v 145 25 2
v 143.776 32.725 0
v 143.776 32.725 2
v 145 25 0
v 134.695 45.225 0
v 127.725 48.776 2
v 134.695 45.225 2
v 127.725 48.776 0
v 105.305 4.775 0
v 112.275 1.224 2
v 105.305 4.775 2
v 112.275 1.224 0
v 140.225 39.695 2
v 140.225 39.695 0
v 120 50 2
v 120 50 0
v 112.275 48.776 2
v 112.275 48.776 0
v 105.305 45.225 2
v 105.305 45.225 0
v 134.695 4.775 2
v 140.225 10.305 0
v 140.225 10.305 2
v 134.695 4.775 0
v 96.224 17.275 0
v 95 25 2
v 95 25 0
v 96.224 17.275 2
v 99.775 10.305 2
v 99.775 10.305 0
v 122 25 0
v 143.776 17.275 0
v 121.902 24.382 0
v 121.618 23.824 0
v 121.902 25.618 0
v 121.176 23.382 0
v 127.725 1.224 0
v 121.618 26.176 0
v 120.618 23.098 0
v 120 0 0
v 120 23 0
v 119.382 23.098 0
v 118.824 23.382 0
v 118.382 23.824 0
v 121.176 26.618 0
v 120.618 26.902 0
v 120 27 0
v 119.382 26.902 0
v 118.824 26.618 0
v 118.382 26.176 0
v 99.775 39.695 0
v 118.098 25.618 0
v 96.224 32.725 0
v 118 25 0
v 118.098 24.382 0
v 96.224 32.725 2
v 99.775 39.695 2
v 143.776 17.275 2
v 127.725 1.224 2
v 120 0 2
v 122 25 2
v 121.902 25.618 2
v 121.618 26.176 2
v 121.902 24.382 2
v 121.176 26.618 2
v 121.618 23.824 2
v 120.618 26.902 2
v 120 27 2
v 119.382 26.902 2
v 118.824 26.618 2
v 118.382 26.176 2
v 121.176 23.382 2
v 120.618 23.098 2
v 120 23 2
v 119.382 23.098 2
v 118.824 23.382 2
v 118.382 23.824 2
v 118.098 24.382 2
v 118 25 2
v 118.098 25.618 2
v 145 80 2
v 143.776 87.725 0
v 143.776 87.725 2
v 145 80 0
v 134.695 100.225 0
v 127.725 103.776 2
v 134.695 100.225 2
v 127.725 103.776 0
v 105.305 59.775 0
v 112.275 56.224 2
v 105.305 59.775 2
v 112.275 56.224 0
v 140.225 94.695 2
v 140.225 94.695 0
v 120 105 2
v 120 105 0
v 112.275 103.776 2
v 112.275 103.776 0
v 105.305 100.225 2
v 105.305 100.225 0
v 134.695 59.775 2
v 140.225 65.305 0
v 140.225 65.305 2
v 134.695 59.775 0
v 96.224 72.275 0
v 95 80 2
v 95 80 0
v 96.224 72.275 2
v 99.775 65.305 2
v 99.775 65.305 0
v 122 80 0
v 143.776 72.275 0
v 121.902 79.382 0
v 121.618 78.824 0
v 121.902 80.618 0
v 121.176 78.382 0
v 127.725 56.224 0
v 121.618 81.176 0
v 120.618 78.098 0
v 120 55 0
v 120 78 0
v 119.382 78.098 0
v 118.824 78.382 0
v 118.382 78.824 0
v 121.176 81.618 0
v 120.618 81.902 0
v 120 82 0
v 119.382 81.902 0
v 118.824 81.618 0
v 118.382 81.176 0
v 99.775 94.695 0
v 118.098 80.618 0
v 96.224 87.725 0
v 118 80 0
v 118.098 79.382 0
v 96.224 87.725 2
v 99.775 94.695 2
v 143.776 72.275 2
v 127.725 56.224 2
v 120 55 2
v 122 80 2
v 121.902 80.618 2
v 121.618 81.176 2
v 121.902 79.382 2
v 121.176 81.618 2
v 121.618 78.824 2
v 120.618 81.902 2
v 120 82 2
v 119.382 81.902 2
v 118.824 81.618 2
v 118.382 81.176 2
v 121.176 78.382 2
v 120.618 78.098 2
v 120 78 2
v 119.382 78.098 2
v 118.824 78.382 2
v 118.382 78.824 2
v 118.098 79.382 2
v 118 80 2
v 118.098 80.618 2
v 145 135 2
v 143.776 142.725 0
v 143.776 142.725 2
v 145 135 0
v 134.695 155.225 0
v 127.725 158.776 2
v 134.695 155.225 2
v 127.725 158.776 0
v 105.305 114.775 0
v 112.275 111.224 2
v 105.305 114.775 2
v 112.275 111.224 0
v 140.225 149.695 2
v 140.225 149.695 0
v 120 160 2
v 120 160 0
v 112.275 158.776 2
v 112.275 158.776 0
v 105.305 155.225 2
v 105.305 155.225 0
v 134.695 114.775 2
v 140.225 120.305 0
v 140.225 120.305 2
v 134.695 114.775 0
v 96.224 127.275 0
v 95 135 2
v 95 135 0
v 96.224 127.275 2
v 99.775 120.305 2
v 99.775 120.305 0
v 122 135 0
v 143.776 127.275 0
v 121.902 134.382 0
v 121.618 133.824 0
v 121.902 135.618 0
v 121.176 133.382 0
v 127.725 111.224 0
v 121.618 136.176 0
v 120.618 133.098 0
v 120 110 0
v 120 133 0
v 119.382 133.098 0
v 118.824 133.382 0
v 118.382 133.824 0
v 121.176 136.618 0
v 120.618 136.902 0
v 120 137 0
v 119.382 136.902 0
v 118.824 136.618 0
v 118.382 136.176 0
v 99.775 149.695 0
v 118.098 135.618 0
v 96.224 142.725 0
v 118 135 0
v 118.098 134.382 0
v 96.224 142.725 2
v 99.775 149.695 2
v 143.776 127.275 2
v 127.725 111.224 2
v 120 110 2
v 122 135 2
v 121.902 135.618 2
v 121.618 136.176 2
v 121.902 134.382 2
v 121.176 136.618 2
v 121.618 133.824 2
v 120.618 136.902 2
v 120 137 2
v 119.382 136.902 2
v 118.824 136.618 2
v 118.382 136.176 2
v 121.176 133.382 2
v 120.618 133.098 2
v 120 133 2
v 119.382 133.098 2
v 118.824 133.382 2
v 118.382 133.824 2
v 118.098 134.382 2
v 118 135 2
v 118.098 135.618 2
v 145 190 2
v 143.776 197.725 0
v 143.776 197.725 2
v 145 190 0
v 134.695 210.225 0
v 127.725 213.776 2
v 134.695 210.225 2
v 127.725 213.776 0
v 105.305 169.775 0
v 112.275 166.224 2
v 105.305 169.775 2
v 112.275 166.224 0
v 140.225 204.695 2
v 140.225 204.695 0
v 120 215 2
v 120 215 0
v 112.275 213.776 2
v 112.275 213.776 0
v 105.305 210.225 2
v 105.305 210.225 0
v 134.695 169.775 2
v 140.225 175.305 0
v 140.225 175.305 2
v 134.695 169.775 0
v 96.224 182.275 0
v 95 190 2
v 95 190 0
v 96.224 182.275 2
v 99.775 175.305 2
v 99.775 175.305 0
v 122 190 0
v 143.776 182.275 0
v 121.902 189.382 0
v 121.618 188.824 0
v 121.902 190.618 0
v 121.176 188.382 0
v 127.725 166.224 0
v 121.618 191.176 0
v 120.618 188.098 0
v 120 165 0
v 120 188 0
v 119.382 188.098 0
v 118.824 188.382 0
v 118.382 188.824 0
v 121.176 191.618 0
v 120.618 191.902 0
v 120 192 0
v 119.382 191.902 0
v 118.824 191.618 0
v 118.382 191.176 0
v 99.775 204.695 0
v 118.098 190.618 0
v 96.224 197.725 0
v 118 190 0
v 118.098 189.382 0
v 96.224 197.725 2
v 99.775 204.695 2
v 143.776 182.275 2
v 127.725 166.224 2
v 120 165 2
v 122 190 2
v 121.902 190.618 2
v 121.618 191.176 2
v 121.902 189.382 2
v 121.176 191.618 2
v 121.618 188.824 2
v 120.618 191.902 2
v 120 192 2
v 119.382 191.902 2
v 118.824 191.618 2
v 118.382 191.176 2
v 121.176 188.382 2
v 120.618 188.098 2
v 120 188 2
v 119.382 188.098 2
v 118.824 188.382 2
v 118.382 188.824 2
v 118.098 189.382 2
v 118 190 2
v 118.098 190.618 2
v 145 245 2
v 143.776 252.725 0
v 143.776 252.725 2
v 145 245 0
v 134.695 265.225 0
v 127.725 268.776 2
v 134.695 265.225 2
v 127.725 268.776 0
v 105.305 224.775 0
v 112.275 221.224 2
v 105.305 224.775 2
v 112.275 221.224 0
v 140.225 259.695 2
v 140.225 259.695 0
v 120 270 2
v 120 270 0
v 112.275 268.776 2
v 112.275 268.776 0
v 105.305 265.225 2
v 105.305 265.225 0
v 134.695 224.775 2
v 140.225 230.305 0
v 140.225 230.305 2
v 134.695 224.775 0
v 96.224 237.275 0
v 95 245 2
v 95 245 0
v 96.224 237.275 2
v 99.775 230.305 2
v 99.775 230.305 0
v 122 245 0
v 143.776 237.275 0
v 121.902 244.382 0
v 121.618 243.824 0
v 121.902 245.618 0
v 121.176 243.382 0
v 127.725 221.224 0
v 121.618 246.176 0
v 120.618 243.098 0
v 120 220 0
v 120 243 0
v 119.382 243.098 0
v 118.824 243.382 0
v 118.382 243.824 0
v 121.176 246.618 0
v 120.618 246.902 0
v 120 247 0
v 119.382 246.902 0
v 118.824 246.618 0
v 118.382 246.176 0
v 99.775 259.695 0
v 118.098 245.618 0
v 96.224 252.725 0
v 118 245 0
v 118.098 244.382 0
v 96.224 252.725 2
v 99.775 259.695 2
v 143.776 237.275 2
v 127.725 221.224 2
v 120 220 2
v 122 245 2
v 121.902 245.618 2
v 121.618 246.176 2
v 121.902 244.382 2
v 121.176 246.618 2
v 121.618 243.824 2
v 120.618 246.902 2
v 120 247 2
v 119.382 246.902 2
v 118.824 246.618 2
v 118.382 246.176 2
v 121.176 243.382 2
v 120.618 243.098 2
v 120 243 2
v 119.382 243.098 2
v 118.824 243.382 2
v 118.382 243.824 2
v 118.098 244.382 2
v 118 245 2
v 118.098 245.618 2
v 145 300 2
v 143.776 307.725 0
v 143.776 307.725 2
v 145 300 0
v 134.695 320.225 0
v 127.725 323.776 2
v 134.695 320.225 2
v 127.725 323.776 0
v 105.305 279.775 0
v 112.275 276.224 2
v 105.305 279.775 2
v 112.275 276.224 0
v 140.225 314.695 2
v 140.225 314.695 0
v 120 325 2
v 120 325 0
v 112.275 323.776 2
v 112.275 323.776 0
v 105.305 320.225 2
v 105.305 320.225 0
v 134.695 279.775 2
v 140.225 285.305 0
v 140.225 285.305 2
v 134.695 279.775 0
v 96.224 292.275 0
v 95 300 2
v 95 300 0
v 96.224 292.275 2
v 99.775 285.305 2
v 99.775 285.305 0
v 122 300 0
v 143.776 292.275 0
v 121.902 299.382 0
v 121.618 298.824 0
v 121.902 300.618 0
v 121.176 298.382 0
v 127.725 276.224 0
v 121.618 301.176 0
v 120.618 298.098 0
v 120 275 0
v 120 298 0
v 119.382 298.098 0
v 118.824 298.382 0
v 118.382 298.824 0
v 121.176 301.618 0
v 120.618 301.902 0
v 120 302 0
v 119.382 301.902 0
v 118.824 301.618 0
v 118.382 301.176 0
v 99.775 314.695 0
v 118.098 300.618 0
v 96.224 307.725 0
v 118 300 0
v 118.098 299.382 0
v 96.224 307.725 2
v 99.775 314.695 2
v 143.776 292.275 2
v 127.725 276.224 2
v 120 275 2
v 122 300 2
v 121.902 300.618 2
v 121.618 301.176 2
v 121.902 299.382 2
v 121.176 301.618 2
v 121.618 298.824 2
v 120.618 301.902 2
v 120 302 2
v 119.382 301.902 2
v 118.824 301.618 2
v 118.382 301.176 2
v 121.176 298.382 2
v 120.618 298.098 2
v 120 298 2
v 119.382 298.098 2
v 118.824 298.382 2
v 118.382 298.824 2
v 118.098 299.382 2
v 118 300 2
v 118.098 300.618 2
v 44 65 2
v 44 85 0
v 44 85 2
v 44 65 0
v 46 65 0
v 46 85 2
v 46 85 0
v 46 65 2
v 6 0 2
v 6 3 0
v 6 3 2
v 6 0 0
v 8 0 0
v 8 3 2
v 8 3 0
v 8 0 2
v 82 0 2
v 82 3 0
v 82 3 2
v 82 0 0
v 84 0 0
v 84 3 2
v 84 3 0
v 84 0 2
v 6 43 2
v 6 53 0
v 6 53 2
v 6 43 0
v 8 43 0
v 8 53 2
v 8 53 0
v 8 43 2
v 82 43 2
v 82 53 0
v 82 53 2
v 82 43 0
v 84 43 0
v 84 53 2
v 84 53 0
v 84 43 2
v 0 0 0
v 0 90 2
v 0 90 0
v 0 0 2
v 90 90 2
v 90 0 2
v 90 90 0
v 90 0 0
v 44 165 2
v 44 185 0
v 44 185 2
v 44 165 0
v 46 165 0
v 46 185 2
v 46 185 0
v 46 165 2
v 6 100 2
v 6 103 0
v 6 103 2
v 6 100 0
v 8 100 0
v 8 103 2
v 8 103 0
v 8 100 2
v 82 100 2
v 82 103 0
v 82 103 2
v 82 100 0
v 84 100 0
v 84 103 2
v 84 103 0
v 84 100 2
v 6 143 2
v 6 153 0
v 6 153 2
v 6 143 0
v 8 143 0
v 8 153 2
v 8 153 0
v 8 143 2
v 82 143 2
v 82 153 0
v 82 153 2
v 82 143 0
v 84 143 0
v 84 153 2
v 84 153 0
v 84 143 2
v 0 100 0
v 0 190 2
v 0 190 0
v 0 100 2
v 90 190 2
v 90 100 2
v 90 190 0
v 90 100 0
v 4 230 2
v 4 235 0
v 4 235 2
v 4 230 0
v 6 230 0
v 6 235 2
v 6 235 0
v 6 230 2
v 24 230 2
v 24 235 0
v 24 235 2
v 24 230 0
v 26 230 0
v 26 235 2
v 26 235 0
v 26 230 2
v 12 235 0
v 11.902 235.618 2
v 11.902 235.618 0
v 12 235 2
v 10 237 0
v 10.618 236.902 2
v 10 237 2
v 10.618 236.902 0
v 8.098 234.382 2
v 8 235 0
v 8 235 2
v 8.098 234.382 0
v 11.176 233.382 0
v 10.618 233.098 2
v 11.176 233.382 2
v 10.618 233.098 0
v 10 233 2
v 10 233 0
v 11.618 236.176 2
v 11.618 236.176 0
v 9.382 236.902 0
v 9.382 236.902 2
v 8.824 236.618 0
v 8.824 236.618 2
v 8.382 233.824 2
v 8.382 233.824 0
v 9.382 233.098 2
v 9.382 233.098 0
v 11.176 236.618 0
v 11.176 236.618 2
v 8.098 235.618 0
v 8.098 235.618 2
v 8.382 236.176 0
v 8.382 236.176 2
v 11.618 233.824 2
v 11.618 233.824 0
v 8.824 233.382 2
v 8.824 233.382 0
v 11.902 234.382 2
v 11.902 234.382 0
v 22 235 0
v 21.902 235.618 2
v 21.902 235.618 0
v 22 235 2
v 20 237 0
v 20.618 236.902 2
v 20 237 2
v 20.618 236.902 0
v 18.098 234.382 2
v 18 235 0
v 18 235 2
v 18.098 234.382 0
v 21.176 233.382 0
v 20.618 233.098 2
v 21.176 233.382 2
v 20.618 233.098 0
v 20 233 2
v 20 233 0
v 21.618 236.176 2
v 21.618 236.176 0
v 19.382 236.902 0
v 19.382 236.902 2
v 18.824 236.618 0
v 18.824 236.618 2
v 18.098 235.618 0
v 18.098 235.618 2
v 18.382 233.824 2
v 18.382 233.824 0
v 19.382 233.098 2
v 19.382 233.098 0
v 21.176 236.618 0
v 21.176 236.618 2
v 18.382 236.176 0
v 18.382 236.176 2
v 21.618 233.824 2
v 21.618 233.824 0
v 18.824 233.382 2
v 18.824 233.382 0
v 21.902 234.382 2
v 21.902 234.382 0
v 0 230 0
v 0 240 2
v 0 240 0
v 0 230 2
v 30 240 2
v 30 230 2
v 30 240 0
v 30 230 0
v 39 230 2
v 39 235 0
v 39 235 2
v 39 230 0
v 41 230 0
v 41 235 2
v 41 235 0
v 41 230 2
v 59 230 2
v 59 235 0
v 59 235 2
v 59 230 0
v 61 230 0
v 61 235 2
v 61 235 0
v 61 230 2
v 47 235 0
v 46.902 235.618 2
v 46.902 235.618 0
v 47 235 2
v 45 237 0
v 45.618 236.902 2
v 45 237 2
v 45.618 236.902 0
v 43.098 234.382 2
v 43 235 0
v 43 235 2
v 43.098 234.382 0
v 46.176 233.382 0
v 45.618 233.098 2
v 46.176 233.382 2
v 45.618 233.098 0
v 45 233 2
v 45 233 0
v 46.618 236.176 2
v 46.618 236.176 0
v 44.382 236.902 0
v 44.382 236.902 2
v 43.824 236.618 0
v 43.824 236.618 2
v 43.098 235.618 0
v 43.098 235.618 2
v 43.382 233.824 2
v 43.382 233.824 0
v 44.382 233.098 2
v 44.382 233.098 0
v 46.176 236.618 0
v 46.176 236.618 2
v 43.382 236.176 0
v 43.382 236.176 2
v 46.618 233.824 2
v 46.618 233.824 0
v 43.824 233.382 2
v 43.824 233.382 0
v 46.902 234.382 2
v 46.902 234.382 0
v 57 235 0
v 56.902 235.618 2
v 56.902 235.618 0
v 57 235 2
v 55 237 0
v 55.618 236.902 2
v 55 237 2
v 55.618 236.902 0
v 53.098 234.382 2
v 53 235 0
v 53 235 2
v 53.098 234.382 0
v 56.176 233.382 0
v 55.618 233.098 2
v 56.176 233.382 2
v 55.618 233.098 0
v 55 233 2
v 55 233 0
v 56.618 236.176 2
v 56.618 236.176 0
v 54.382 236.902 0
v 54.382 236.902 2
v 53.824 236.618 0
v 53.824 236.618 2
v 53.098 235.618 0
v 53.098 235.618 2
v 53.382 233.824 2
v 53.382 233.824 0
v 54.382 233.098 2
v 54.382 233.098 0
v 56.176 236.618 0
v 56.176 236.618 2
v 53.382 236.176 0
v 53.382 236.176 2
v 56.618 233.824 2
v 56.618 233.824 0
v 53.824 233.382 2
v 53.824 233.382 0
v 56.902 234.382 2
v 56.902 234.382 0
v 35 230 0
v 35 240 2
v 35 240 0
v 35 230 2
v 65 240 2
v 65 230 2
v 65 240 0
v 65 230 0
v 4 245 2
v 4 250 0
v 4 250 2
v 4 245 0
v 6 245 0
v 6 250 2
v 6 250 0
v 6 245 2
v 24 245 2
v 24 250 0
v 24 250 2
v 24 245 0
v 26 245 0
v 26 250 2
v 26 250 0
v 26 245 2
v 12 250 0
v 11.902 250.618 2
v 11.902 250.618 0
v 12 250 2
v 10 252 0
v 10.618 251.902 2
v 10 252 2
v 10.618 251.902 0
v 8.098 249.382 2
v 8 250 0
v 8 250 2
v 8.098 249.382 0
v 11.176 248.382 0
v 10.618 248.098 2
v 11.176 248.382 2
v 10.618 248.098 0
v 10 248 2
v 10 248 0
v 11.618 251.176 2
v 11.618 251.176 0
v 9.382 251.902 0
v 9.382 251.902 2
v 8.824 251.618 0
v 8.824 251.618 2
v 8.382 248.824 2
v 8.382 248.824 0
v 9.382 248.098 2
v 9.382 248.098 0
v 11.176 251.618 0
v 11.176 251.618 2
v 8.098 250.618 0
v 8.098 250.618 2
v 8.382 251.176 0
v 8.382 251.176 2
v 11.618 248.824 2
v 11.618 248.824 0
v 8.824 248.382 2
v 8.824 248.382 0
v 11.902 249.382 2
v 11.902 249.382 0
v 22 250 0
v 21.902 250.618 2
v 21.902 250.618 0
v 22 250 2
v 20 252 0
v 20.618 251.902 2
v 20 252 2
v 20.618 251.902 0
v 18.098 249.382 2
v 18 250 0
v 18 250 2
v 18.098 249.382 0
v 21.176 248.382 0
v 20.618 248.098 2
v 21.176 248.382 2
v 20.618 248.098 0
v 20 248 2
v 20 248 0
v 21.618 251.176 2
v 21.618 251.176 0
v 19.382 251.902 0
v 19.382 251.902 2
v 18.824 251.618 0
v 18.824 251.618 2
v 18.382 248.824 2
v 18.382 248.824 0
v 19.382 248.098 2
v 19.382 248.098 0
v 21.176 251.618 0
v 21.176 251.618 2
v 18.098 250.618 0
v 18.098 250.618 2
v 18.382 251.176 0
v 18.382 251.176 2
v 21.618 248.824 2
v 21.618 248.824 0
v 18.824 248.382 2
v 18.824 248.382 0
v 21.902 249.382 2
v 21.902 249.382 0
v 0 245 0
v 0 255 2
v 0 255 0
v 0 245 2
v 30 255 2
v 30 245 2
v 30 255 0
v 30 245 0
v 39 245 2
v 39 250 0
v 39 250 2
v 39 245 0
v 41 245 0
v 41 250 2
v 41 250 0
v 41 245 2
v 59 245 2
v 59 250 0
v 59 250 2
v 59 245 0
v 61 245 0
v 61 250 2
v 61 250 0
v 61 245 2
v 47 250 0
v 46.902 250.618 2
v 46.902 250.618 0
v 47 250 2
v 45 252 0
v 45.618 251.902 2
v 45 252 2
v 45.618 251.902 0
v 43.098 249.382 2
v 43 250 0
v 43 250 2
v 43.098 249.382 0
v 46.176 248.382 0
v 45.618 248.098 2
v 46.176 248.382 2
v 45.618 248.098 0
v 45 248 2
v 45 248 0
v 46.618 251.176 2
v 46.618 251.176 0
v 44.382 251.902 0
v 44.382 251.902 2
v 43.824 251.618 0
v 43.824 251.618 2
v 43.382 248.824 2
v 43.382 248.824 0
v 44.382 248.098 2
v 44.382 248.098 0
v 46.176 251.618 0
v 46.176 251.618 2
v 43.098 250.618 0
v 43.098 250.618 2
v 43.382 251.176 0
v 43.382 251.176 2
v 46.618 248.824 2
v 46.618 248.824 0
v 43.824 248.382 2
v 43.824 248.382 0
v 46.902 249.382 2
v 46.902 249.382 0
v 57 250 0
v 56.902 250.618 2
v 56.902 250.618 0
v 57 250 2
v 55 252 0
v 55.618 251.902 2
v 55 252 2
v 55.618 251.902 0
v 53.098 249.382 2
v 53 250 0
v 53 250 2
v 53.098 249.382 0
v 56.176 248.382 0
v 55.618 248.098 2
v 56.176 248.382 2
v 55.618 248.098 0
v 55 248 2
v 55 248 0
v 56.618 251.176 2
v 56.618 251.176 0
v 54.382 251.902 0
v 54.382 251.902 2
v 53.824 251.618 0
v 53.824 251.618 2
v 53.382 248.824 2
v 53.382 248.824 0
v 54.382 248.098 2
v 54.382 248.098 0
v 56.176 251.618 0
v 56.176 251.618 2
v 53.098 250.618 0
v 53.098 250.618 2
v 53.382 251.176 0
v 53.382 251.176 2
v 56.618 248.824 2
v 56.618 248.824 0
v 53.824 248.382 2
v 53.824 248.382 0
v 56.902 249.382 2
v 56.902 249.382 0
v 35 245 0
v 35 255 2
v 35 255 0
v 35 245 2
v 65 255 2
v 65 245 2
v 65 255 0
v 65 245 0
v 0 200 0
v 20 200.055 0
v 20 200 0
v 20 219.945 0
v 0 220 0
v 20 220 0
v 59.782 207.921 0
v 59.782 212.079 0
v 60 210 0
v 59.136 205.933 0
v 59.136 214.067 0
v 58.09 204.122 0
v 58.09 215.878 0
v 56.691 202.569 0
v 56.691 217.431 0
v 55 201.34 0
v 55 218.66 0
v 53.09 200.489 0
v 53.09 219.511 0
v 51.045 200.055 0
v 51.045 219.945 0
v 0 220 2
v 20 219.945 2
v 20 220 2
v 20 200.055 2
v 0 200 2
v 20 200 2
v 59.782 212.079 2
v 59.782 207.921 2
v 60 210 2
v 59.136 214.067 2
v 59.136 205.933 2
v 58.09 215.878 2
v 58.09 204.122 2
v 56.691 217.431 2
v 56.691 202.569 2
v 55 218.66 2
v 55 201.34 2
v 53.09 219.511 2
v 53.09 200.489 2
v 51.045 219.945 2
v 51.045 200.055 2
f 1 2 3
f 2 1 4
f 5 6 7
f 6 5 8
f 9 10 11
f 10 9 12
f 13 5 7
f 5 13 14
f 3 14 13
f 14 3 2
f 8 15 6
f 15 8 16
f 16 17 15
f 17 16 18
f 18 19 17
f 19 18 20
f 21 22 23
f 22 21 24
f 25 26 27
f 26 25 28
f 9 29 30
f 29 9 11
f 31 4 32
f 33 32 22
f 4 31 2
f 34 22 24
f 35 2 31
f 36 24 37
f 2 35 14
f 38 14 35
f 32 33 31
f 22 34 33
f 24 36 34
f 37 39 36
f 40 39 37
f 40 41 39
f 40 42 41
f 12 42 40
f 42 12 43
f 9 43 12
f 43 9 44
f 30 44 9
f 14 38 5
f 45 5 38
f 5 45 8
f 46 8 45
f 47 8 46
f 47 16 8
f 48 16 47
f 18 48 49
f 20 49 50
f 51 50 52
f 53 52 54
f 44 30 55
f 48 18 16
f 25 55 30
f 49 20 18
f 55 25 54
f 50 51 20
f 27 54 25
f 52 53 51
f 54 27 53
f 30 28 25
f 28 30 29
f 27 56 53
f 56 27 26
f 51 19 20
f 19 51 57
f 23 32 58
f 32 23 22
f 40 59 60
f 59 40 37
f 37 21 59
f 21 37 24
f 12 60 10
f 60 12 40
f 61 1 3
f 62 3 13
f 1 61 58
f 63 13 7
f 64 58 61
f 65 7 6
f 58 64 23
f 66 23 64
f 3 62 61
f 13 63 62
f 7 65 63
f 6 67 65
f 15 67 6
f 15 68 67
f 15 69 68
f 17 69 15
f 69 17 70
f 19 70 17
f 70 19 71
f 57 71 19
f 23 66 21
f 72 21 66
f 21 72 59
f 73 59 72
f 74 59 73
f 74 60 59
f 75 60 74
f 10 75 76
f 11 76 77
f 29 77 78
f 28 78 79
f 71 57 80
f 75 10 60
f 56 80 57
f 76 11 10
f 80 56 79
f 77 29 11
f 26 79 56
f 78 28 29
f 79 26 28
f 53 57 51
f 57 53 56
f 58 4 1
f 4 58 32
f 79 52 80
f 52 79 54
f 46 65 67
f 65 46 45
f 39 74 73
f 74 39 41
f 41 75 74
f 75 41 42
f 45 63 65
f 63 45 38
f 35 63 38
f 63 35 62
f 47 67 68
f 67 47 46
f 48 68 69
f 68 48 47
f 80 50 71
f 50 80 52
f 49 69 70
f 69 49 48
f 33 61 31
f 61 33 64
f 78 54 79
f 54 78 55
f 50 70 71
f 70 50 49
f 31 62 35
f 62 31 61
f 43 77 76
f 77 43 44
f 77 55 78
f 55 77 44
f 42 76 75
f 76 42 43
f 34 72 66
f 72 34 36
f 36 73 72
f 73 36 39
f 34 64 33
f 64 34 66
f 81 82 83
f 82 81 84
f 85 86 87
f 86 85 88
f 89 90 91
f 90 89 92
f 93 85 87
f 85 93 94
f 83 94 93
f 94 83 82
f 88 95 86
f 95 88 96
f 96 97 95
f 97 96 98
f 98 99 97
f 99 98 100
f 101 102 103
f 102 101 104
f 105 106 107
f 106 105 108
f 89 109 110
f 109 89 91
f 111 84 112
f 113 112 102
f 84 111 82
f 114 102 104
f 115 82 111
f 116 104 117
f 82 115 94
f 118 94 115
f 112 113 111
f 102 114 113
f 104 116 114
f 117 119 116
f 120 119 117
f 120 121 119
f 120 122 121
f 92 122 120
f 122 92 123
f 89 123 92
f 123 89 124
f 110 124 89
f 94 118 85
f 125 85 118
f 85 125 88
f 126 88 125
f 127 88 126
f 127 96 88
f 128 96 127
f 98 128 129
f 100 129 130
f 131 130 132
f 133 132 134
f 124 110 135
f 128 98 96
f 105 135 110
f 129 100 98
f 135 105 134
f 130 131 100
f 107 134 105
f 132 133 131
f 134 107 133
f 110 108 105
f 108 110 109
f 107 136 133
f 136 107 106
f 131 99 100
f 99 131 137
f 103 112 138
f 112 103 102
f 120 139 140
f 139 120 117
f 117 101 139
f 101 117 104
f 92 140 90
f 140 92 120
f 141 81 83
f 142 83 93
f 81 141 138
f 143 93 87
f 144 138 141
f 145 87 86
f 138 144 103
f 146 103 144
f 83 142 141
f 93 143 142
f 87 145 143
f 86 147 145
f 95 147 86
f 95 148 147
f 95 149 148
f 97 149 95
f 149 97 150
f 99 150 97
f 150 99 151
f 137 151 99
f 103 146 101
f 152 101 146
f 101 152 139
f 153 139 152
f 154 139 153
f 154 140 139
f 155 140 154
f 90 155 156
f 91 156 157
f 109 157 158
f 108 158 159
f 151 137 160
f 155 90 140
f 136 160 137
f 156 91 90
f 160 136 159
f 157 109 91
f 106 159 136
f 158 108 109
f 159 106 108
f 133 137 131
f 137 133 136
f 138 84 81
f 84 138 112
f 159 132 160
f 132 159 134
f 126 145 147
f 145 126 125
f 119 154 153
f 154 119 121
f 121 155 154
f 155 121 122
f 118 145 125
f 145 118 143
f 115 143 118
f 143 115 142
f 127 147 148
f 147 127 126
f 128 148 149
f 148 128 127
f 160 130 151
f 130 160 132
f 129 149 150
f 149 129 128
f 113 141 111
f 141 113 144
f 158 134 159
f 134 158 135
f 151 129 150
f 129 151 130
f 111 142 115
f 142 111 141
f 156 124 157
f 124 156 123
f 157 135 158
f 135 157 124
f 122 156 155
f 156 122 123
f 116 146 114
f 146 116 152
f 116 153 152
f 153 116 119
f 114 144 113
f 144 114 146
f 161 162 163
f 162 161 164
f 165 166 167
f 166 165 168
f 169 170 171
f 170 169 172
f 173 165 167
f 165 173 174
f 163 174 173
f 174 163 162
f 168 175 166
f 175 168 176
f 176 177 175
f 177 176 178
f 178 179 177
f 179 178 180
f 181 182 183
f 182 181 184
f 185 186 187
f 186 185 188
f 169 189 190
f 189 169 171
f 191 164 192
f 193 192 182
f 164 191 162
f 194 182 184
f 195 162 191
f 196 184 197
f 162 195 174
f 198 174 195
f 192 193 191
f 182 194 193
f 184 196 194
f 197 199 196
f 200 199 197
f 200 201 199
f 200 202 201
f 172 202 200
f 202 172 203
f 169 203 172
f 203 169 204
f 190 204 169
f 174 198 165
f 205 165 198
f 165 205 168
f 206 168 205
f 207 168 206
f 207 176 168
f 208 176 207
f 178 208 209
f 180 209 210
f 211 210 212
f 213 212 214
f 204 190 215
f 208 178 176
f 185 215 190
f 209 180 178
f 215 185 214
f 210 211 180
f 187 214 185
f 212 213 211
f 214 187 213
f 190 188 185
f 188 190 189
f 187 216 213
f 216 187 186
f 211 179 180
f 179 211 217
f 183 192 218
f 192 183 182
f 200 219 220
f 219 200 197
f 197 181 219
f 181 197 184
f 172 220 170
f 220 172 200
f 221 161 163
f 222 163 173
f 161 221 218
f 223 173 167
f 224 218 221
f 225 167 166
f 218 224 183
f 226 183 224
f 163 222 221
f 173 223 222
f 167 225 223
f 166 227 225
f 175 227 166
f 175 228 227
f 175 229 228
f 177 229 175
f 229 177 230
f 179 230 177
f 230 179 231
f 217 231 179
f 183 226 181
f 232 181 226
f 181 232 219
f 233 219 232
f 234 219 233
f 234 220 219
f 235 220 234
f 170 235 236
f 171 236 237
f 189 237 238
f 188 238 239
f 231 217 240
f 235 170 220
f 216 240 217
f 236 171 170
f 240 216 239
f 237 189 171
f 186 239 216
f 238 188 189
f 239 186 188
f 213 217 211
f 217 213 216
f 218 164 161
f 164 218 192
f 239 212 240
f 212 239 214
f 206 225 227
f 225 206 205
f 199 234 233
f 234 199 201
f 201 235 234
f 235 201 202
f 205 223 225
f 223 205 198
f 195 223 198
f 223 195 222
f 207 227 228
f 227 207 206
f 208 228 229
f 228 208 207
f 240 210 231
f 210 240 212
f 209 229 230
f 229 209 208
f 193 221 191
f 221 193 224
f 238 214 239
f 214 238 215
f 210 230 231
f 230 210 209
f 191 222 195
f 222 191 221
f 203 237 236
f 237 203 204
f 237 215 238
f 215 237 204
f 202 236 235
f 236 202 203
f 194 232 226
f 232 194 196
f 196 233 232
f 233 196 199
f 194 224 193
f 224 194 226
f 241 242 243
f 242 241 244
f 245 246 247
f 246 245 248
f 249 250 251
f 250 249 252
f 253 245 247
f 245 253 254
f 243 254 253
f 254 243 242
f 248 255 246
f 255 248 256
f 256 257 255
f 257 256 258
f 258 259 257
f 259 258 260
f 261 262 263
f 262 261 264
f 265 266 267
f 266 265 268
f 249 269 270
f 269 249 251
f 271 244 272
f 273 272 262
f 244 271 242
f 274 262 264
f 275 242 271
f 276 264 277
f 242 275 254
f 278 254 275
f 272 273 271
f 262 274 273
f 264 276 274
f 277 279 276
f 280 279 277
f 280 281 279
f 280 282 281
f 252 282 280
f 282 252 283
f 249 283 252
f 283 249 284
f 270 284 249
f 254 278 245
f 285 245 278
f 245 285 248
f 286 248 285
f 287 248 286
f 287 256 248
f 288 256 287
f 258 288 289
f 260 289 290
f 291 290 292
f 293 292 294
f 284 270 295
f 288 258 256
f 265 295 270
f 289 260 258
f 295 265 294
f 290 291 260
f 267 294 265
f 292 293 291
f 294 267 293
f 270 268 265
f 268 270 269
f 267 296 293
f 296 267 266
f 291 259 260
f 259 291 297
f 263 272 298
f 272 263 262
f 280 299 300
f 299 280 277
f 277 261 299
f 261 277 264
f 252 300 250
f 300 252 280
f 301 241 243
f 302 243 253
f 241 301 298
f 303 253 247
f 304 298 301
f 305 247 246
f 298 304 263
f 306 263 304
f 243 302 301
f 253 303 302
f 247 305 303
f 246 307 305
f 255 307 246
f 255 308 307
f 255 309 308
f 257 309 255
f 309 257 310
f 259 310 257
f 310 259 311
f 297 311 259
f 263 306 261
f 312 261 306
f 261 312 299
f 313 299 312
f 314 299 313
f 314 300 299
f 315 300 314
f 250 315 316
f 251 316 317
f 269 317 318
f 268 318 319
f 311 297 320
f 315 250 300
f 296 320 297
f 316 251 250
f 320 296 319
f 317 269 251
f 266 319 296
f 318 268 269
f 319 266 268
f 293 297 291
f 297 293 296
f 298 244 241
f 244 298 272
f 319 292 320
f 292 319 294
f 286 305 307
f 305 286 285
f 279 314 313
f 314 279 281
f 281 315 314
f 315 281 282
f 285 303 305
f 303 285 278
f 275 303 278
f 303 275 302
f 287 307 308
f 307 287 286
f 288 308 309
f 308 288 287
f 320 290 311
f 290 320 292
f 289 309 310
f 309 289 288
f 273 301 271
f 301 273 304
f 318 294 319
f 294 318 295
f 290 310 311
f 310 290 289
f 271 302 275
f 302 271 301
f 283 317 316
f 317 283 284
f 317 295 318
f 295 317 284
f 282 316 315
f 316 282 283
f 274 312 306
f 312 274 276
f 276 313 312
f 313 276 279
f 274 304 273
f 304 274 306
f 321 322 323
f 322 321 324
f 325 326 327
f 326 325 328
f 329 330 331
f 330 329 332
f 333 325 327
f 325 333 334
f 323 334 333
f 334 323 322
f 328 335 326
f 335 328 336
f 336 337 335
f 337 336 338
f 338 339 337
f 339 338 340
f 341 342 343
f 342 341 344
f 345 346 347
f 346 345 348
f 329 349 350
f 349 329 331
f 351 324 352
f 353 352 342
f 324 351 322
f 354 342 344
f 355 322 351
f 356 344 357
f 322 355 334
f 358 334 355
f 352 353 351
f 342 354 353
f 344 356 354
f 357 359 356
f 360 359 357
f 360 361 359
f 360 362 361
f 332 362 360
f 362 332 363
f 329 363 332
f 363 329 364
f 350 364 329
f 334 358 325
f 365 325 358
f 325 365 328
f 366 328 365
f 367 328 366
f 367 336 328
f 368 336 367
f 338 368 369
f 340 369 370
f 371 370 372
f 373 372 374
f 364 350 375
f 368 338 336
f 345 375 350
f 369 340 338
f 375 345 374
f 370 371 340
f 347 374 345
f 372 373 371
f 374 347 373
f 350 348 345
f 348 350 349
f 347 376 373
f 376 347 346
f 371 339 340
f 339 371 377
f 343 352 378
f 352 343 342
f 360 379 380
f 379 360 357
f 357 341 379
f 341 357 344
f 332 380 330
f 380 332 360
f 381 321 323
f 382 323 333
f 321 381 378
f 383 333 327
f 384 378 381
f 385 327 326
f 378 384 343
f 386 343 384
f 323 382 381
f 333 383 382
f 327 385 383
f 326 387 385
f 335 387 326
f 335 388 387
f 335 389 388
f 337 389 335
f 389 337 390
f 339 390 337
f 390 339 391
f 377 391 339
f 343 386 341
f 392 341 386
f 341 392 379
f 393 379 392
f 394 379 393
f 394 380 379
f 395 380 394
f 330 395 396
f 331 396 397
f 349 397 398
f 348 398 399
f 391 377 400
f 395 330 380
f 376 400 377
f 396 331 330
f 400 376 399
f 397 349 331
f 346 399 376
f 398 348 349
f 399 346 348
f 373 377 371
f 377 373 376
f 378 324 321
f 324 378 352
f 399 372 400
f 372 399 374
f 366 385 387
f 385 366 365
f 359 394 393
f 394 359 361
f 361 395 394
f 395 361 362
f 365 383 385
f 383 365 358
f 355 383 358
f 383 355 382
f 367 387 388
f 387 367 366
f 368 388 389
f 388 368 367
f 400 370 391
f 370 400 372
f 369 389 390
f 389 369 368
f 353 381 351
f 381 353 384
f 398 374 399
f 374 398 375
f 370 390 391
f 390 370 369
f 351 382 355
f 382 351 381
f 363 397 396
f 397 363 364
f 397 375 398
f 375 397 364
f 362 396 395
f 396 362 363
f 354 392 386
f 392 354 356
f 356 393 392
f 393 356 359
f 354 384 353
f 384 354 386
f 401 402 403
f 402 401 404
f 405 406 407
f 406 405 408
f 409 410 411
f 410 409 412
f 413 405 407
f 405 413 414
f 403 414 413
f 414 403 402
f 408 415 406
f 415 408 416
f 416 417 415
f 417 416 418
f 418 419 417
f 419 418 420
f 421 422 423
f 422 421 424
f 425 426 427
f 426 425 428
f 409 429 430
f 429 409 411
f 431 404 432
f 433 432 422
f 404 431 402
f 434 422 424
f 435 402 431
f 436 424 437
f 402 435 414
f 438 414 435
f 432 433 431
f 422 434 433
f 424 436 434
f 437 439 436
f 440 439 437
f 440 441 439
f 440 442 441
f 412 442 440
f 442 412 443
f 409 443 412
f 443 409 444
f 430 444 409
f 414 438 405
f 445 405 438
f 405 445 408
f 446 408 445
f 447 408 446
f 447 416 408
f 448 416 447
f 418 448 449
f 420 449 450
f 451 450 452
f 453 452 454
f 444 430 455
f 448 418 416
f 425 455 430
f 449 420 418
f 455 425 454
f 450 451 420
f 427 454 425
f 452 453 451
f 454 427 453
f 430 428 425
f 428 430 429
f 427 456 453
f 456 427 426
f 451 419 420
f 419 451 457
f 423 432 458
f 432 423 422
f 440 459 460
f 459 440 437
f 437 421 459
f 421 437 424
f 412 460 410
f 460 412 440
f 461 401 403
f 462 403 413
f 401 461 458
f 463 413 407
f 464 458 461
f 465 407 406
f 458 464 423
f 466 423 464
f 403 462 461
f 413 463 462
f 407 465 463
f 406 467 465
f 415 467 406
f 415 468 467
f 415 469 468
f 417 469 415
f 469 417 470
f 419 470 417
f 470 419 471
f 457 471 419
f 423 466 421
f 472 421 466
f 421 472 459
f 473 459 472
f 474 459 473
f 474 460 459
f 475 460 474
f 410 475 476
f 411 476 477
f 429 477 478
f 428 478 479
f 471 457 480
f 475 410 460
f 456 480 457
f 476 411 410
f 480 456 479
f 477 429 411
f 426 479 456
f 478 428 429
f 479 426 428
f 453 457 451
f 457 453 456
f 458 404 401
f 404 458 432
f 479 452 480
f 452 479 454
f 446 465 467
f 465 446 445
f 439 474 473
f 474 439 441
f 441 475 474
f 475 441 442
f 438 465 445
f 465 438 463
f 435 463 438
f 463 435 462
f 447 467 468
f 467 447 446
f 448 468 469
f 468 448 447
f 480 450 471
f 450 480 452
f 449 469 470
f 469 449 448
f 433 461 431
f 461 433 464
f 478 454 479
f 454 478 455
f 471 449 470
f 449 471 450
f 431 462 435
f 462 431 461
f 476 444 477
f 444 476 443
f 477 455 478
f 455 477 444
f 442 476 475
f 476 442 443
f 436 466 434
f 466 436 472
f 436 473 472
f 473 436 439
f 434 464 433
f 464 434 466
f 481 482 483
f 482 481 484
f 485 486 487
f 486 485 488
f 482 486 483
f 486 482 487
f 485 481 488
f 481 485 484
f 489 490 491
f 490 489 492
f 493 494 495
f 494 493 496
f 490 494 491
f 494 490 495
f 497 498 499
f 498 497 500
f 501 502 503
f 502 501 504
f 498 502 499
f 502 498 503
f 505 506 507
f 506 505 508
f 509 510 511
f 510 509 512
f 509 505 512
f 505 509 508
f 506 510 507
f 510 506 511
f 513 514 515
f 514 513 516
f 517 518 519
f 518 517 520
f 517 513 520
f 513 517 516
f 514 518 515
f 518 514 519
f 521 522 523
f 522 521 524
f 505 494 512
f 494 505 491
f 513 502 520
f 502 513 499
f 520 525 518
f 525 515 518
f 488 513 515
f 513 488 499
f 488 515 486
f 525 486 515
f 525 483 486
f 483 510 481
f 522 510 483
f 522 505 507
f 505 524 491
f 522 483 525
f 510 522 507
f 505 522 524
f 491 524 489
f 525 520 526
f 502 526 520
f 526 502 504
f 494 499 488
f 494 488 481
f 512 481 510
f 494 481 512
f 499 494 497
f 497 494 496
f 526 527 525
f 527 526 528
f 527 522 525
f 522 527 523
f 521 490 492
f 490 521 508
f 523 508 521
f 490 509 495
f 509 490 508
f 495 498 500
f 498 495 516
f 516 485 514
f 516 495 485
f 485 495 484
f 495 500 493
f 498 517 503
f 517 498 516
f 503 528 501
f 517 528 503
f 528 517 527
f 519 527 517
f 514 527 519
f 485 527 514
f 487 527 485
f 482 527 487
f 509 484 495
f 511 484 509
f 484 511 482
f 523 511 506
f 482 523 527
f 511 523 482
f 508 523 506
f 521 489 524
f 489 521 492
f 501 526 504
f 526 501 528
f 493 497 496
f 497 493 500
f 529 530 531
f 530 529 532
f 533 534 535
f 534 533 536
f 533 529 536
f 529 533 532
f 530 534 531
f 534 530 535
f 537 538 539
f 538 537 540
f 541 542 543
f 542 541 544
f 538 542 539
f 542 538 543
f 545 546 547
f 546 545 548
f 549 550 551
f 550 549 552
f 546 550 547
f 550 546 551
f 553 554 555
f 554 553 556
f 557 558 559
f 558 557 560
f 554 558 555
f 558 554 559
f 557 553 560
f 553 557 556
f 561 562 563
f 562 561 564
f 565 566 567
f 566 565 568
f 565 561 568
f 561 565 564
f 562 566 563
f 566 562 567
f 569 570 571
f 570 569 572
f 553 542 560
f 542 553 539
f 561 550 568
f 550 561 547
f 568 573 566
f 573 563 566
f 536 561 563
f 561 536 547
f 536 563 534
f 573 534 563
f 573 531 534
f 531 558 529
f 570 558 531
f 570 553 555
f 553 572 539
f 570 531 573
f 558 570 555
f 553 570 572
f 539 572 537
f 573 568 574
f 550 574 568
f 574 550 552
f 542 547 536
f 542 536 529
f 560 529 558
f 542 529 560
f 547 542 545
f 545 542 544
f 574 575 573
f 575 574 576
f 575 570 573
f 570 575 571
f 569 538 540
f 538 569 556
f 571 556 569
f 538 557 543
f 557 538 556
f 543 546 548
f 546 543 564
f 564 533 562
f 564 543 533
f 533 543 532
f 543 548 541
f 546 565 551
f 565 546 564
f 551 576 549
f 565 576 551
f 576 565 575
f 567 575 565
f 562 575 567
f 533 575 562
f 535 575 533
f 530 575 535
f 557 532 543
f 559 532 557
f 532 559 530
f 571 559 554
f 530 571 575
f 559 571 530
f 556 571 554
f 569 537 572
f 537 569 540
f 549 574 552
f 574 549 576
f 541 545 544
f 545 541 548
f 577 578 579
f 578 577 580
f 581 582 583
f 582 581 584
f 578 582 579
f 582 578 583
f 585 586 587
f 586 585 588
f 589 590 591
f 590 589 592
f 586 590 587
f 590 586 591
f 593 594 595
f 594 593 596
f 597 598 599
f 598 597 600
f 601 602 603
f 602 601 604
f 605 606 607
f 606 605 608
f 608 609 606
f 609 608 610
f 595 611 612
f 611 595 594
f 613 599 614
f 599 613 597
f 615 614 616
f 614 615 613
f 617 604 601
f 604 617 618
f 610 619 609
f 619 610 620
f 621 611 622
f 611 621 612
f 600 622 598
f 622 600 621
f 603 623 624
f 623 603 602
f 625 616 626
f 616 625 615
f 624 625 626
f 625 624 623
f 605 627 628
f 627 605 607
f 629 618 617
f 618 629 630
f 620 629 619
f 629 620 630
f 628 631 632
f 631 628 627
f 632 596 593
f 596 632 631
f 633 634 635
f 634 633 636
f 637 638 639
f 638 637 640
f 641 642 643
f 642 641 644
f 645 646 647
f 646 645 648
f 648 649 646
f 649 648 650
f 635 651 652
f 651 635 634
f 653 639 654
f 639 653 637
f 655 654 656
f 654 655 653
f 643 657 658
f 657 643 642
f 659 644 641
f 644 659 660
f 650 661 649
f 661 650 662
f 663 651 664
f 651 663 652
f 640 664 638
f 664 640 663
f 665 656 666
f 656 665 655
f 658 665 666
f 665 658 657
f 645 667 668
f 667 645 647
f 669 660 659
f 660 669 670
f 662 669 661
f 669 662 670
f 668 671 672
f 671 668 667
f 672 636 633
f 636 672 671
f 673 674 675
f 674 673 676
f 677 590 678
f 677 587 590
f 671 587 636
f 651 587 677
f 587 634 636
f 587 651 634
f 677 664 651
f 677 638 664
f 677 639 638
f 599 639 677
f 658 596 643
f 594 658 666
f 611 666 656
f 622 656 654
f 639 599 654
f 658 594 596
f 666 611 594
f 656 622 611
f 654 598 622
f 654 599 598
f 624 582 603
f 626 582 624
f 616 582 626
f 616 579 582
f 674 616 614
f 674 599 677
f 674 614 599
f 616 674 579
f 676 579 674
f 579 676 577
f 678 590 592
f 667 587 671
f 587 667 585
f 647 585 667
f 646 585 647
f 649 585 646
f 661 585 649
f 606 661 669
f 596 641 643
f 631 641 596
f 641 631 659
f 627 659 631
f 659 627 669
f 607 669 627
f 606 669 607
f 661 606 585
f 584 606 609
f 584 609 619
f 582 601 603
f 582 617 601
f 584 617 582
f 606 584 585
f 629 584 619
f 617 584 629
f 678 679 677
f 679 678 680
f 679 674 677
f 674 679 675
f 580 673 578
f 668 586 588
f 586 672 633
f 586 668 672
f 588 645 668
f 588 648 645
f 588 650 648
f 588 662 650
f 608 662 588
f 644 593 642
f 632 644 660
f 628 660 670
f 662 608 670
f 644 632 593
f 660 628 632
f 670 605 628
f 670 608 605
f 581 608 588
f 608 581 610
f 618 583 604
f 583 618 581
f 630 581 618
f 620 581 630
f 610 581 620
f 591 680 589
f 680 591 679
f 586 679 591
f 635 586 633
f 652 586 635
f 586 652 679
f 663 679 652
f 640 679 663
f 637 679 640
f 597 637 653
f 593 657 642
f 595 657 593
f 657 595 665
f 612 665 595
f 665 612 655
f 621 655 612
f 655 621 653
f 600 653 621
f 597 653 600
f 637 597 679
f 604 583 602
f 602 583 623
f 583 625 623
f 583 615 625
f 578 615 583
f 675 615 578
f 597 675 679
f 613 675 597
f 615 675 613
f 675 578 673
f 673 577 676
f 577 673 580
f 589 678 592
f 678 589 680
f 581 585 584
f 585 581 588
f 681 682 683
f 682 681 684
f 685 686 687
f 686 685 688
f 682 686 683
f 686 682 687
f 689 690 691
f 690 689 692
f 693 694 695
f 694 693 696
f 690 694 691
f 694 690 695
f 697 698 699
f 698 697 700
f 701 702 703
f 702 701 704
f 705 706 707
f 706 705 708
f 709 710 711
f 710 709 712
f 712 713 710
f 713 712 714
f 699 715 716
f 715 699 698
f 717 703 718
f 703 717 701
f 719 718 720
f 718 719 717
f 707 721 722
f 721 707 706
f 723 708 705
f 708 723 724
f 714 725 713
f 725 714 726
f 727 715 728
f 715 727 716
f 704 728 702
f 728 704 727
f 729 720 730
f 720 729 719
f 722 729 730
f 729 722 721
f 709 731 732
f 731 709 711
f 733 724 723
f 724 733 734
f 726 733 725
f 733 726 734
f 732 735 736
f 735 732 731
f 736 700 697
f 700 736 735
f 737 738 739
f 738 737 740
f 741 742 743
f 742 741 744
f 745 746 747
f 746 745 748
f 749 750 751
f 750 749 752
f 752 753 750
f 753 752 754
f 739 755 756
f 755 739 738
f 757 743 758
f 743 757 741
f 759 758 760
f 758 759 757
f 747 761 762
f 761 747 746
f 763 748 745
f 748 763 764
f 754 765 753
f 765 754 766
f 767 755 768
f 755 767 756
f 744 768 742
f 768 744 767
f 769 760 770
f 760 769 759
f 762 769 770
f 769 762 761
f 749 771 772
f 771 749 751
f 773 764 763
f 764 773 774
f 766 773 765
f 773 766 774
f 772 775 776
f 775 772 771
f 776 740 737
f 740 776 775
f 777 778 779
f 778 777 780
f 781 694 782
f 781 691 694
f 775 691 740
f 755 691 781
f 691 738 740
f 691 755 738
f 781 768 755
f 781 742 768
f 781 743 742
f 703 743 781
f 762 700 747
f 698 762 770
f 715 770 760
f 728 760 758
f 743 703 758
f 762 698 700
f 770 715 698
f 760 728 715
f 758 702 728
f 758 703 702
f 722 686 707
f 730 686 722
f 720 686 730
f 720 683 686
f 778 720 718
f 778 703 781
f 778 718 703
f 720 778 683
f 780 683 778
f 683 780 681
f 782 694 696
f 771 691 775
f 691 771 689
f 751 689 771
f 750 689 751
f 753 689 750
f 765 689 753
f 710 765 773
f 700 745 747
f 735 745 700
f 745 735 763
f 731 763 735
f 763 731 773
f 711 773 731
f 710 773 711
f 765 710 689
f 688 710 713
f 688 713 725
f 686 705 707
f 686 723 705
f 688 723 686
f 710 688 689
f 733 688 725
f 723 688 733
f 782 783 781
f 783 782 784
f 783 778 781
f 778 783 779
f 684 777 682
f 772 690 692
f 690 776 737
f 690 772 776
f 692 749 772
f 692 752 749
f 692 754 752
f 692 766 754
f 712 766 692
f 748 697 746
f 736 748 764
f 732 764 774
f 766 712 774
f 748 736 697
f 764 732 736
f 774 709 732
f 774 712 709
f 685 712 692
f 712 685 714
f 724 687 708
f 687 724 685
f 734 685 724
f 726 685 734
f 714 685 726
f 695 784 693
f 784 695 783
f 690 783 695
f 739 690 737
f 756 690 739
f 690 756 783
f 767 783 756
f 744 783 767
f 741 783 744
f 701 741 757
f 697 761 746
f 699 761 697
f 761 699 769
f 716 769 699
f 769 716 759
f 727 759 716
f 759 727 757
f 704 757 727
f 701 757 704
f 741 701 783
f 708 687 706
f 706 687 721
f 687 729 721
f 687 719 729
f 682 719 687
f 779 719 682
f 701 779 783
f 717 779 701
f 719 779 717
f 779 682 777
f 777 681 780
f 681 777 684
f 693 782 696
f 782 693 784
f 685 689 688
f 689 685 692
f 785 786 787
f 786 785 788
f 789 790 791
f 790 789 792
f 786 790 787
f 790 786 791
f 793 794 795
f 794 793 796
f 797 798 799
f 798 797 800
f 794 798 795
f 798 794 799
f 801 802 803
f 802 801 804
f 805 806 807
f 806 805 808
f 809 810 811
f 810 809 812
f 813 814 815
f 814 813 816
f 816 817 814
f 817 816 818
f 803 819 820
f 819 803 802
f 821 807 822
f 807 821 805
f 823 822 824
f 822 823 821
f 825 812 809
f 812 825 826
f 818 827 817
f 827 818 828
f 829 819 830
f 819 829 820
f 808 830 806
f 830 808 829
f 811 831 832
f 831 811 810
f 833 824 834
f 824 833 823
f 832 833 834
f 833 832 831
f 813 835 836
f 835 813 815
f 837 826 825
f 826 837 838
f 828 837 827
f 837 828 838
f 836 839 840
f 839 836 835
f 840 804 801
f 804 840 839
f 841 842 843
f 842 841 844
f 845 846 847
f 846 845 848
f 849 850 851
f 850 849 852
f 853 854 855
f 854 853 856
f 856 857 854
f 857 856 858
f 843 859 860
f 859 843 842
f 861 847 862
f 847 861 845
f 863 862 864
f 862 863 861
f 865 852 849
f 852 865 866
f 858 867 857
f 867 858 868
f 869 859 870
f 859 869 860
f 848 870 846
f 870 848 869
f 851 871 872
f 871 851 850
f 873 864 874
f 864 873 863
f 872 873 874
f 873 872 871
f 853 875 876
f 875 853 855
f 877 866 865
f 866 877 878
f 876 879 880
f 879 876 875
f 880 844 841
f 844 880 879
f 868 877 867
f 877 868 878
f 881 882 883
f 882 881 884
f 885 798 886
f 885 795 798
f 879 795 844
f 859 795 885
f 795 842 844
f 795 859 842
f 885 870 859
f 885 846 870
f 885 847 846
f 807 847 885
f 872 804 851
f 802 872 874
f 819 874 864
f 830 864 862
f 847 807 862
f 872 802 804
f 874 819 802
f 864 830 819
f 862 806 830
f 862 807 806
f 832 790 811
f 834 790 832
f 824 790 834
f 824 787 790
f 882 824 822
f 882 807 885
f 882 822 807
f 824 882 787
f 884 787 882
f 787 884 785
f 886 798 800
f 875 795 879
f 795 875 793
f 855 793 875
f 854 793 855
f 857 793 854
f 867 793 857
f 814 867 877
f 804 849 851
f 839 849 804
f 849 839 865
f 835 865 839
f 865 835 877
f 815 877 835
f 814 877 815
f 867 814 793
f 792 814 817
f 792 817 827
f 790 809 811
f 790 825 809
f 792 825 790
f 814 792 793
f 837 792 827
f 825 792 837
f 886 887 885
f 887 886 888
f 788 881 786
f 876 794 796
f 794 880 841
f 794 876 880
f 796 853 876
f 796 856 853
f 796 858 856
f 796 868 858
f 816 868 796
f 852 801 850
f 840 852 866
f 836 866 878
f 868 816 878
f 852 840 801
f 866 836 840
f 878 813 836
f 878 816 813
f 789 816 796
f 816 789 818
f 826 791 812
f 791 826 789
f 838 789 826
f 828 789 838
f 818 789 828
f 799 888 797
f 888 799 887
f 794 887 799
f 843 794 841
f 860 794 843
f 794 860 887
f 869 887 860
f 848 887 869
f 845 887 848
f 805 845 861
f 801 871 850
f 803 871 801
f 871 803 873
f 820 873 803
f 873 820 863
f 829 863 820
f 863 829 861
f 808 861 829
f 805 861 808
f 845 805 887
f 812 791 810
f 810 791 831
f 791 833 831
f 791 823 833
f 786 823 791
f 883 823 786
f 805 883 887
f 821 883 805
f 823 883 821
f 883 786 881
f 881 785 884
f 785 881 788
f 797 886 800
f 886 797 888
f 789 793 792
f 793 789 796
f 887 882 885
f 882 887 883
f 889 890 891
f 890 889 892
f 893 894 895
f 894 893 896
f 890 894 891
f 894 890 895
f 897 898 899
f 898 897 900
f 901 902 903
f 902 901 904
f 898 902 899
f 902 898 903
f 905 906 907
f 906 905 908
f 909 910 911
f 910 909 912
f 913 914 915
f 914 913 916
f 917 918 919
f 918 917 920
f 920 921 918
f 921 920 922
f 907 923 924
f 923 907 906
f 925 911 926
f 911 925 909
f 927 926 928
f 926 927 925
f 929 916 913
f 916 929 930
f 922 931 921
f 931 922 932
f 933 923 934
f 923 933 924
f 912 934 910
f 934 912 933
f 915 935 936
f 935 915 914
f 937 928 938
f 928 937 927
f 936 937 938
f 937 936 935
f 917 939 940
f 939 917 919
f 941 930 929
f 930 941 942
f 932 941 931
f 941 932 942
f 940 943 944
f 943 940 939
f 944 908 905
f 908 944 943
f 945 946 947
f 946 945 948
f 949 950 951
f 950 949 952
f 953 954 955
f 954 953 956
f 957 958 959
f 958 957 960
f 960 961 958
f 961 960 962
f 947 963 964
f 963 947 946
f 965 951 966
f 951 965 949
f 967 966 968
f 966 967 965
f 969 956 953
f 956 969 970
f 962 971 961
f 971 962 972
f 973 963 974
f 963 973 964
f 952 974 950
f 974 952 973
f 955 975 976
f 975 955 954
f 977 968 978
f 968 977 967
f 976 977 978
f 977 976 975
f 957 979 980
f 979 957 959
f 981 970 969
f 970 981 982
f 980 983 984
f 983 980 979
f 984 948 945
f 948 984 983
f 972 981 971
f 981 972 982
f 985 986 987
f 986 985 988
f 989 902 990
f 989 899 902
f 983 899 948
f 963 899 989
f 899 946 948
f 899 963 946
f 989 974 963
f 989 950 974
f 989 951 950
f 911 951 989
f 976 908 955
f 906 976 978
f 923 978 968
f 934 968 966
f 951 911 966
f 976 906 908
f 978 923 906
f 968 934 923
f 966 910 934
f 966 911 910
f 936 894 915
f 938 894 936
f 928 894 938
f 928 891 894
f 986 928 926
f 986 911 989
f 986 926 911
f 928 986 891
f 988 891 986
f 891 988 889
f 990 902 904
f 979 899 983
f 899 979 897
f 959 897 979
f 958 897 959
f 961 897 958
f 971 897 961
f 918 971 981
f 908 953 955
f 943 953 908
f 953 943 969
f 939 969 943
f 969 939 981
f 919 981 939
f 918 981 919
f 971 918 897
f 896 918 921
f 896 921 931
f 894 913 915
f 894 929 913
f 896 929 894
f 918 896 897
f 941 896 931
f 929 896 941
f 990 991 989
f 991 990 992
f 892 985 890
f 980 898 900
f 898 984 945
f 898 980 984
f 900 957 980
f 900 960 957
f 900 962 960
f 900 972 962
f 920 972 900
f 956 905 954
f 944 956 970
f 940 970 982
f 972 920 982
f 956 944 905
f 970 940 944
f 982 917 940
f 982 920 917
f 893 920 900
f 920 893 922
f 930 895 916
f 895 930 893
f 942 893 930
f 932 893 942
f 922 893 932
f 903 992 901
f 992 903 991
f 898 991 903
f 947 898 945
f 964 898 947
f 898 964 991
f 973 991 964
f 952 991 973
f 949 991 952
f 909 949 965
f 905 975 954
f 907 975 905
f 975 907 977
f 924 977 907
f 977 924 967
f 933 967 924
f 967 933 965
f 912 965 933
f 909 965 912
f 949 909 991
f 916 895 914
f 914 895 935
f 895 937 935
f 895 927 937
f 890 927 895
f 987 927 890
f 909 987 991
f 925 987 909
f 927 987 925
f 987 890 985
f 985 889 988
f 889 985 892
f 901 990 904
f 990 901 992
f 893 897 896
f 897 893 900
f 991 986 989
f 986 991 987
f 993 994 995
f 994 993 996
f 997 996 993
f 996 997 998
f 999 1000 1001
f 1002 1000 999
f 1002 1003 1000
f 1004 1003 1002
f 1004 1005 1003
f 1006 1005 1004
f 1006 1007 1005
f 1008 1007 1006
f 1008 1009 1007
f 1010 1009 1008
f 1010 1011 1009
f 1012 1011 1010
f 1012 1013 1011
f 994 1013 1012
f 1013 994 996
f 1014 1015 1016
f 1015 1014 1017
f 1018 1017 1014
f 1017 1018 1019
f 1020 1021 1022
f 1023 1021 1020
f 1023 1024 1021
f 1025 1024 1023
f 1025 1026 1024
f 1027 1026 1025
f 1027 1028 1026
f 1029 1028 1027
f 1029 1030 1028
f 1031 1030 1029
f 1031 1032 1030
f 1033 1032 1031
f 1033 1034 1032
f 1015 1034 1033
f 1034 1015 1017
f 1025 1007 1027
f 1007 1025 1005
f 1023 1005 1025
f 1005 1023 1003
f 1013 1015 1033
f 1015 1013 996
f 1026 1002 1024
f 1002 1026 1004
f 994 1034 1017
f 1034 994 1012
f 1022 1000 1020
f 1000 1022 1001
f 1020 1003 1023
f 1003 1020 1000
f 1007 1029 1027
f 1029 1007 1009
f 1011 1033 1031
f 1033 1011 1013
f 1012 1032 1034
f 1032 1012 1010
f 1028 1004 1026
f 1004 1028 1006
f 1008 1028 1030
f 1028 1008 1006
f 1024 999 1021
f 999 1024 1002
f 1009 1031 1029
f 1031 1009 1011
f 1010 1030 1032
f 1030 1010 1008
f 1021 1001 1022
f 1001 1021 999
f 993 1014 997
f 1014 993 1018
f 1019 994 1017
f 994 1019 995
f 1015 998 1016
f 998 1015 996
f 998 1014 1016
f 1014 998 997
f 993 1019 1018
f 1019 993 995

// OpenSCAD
//Cutrebot piezas
//Pensado para realizar en cartón
//Elementos necesarios para montar el Robot móvil:
// 2 x servos de rotación continua
// 1 x placa Arduino compatible
// 1 x powerBank
// 1 x Sensor ultrasonidos
// 2 x Sensor de infrarrojos (seguidor de línea)
// Cables de conexión

//Chasis
for(i=[0:1]){
    difference(){
        translate([0,100*i,0]) cube([90,90,2]);
        union(){
            translate([44,100*i+65,-1]) cube([2,20,4]);
            translate([6,-1+100*i,-1]) cube([2,4,4]);            
            translate([82,-1+100*i,-1]) cube([2,4,4]);            
            translate([6,43+100*i,-1]) cube([2,10,4]);            
            translate([82,43+100*i,-1]) cube([2,10,4]);            
        }
    }
}
//Patín
linear_extrude(2){
    translate([0,210,0]) 
        hull() {
            translate([10,0,0]) circle(10);
            translate([50,0,0]) circle(10);
        }
    }
translate([0,200,0]) cube([20,20,2]);
//Conectores
for(j=[0:1]){
    for(i=[0:1]){    
        difference(){
            translate([35*i,230+15*j,0]) cube([30,10,2]);
            union(){
                translate([4+35*i,230-1+15*j,-1]) cube([2,6,4]);
                translate([24+35*i,230-1+15*j,-1]) cube([2,6,4]);            
                translate([10+35*i,236-1+15*j,-1]) cylinder(r=2,h=4,$fn=20);
                translate([20+35*i,236-1+15*j,-1]) cylinder(r=2,h=4,$fn=20);
                }
        }
    }
}

//Ruedas    
for(i=[0:5]){
    translate([120,25+i*55,0]){
        difference(){
            cylinder(r=50/2,h=2,$fn=20);
            translate([0,0,-1]) cylinder(r=2,h=4,$fn=20);
        }
    }
}
